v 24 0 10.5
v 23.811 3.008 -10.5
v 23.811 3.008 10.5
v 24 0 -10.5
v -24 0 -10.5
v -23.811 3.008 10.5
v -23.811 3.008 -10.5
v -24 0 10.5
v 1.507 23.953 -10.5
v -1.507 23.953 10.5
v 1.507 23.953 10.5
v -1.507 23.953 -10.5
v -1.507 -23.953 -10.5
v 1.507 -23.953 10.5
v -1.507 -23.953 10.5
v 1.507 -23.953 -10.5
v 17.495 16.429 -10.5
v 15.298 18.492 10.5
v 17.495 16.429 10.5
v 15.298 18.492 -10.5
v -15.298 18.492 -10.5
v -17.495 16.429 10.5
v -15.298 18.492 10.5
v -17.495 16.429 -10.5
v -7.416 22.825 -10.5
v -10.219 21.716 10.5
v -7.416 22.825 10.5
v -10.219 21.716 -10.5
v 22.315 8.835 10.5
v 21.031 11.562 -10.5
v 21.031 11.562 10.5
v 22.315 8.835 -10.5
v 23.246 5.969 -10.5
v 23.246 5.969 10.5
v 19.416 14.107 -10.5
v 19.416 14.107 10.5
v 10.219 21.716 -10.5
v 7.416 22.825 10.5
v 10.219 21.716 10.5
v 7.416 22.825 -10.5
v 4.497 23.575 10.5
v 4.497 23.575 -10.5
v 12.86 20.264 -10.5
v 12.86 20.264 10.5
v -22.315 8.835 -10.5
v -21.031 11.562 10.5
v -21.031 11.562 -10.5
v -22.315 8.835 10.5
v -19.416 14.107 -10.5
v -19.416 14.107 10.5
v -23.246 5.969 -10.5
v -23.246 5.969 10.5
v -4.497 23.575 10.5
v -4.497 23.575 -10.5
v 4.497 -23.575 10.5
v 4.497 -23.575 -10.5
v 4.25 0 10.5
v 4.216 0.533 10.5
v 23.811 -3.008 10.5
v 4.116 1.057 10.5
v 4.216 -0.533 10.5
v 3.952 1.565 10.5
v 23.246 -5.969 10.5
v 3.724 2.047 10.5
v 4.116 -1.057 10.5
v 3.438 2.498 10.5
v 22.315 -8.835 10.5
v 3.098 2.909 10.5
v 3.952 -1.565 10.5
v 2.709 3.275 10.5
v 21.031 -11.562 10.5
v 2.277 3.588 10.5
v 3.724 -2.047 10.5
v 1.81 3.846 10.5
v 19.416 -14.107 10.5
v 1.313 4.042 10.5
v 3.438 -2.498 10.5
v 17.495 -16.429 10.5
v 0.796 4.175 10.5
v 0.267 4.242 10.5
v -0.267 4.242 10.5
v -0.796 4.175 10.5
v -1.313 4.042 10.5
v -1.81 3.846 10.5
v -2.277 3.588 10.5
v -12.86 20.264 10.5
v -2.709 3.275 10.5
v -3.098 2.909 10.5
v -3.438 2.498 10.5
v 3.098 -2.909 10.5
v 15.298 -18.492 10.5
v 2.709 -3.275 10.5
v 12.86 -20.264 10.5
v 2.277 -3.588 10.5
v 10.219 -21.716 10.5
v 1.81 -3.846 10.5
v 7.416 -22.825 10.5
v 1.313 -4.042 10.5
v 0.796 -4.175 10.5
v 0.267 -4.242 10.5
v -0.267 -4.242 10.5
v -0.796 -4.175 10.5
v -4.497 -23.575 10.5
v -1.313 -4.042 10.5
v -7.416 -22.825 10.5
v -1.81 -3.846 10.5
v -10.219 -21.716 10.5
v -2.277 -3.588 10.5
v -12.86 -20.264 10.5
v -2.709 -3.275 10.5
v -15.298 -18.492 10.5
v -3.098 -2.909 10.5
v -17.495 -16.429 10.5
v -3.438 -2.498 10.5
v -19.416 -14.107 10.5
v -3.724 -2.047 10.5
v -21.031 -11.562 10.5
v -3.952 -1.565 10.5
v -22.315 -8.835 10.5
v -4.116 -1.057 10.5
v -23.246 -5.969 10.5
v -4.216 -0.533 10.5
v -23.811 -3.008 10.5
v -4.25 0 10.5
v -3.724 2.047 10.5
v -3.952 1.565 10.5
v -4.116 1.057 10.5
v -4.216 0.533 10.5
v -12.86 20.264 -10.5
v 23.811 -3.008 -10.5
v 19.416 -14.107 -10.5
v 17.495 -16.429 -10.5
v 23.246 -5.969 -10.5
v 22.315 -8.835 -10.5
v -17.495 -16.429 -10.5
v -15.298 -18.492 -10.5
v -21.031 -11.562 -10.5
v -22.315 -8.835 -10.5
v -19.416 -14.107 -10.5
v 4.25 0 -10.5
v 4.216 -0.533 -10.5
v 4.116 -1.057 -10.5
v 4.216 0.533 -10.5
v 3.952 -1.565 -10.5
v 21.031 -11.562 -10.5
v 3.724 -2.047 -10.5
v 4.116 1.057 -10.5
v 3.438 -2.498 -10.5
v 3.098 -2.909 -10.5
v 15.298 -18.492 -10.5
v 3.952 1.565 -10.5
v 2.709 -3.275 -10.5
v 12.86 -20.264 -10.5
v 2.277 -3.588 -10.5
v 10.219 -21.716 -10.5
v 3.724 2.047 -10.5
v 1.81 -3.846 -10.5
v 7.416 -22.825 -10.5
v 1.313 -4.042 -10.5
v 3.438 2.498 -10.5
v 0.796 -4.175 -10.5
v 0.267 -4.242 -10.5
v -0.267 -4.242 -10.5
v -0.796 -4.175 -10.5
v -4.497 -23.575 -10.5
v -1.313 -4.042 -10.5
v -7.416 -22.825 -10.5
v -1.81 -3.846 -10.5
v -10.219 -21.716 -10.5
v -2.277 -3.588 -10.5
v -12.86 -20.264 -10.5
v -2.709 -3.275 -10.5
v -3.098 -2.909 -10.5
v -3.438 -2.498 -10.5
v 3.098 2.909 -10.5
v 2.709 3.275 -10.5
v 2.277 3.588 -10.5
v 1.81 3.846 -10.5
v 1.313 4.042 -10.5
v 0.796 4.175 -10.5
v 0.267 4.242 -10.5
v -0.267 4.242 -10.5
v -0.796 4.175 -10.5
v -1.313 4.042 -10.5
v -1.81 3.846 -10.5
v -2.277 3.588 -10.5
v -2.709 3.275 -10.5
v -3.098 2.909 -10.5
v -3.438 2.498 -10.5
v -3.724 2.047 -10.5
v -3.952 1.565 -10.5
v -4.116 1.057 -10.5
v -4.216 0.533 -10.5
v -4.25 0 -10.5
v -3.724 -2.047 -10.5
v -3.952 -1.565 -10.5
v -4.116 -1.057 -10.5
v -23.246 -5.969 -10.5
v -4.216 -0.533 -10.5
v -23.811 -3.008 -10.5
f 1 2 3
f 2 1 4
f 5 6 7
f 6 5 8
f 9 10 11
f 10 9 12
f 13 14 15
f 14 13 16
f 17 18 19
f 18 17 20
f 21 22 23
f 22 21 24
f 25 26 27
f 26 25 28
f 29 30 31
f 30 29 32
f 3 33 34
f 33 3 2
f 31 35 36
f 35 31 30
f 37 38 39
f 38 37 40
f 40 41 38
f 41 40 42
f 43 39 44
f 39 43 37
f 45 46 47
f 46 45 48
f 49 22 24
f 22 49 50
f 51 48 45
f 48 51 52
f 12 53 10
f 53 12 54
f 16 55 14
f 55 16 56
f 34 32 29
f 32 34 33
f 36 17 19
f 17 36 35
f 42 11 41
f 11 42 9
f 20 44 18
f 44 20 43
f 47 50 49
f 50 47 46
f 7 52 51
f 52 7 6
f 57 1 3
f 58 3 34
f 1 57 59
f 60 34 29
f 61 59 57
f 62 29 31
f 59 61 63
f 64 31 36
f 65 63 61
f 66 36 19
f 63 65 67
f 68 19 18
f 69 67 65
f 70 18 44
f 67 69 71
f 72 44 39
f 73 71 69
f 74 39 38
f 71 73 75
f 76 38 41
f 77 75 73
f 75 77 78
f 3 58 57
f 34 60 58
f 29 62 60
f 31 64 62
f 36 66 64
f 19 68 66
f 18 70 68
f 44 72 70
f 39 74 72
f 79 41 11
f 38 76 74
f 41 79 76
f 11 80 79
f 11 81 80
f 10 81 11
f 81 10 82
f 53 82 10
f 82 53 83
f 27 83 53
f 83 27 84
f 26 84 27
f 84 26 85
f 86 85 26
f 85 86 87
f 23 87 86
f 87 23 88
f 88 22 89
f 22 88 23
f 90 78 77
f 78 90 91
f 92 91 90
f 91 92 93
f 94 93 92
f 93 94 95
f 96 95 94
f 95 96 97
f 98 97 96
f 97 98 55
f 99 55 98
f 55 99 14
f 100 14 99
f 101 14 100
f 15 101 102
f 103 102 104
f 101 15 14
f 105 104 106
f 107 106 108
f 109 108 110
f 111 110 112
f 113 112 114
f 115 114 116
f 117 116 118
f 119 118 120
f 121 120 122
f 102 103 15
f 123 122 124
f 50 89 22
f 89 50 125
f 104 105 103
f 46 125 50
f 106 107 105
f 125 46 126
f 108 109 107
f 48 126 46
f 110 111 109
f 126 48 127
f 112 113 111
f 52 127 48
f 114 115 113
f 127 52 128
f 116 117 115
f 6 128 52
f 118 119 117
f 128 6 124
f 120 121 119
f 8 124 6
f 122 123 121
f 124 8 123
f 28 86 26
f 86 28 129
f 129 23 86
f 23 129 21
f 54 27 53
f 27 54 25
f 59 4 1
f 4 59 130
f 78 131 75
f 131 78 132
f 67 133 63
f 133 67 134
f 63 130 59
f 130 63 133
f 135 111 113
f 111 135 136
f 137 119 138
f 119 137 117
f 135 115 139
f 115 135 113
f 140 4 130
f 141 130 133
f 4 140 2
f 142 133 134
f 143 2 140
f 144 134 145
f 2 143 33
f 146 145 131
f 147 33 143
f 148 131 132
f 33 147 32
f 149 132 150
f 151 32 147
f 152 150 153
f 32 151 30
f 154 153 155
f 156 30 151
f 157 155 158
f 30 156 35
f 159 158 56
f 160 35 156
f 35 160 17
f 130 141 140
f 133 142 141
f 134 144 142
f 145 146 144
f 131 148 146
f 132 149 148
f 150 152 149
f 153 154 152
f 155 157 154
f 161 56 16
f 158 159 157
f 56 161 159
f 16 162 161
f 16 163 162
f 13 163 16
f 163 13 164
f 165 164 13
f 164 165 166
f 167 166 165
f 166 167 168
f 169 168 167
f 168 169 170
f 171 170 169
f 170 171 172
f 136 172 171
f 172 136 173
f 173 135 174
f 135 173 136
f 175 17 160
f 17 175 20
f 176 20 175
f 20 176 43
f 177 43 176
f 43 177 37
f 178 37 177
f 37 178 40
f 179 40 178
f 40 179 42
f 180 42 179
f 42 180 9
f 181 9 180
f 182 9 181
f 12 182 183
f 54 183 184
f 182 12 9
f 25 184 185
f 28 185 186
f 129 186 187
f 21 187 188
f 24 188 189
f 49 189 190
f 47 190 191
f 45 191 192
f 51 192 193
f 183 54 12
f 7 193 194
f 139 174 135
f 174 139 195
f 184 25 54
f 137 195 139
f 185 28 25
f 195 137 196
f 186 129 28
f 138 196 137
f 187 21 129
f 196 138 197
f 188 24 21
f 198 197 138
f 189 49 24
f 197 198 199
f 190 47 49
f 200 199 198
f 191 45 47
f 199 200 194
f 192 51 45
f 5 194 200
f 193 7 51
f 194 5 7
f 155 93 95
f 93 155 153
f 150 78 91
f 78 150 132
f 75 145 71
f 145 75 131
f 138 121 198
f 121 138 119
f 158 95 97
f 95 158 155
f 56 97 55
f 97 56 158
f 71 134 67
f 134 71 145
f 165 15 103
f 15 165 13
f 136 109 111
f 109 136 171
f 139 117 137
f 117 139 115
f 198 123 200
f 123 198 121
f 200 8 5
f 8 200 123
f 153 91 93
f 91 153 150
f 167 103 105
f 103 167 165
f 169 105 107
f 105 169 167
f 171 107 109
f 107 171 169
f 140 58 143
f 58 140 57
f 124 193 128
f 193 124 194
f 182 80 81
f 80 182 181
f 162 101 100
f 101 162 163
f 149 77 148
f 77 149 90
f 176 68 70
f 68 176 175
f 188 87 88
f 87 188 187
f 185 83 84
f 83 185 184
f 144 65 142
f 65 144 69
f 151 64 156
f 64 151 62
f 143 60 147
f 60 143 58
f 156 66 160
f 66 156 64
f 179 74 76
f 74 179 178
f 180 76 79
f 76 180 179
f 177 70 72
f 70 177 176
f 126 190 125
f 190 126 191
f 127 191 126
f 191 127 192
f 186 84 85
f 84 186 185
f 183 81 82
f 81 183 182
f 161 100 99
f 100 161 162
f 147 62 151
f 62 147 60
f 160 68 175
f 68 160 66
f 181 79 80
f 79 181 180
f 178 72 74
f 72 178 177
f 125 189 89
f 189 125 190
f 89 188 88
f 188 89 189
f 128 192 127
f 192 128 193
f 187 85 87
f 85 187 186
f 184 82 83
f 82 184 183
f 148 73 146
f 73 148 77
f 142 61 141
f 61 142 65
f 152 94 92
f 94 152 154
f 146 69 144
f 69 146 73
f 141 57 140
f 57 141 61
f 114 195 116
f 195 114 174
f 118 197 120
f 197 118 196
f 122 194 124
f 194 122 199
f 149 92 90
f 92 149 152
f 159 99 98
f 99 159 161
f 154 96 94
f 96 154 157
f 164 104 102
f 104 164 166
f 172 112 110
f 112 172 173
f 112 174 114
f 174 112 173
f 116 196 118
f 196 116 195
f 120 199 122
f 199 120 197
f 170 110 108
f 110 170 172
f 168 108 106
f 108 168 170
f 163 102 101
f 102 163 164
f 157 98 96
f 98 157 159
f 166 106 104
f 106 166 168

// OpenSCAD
$fn = 50;


difference() {
	union() {
		translate(v = [0, 0, -10.5000000000]) {
			cylinder(h = 21, r = 24.0000000000);
		}
	}
	union() {
		translate(v = [0, 0, -100.0000000000]) {
			cylinder(h = 200, r = 4.2500000000);
		}
	}
}
